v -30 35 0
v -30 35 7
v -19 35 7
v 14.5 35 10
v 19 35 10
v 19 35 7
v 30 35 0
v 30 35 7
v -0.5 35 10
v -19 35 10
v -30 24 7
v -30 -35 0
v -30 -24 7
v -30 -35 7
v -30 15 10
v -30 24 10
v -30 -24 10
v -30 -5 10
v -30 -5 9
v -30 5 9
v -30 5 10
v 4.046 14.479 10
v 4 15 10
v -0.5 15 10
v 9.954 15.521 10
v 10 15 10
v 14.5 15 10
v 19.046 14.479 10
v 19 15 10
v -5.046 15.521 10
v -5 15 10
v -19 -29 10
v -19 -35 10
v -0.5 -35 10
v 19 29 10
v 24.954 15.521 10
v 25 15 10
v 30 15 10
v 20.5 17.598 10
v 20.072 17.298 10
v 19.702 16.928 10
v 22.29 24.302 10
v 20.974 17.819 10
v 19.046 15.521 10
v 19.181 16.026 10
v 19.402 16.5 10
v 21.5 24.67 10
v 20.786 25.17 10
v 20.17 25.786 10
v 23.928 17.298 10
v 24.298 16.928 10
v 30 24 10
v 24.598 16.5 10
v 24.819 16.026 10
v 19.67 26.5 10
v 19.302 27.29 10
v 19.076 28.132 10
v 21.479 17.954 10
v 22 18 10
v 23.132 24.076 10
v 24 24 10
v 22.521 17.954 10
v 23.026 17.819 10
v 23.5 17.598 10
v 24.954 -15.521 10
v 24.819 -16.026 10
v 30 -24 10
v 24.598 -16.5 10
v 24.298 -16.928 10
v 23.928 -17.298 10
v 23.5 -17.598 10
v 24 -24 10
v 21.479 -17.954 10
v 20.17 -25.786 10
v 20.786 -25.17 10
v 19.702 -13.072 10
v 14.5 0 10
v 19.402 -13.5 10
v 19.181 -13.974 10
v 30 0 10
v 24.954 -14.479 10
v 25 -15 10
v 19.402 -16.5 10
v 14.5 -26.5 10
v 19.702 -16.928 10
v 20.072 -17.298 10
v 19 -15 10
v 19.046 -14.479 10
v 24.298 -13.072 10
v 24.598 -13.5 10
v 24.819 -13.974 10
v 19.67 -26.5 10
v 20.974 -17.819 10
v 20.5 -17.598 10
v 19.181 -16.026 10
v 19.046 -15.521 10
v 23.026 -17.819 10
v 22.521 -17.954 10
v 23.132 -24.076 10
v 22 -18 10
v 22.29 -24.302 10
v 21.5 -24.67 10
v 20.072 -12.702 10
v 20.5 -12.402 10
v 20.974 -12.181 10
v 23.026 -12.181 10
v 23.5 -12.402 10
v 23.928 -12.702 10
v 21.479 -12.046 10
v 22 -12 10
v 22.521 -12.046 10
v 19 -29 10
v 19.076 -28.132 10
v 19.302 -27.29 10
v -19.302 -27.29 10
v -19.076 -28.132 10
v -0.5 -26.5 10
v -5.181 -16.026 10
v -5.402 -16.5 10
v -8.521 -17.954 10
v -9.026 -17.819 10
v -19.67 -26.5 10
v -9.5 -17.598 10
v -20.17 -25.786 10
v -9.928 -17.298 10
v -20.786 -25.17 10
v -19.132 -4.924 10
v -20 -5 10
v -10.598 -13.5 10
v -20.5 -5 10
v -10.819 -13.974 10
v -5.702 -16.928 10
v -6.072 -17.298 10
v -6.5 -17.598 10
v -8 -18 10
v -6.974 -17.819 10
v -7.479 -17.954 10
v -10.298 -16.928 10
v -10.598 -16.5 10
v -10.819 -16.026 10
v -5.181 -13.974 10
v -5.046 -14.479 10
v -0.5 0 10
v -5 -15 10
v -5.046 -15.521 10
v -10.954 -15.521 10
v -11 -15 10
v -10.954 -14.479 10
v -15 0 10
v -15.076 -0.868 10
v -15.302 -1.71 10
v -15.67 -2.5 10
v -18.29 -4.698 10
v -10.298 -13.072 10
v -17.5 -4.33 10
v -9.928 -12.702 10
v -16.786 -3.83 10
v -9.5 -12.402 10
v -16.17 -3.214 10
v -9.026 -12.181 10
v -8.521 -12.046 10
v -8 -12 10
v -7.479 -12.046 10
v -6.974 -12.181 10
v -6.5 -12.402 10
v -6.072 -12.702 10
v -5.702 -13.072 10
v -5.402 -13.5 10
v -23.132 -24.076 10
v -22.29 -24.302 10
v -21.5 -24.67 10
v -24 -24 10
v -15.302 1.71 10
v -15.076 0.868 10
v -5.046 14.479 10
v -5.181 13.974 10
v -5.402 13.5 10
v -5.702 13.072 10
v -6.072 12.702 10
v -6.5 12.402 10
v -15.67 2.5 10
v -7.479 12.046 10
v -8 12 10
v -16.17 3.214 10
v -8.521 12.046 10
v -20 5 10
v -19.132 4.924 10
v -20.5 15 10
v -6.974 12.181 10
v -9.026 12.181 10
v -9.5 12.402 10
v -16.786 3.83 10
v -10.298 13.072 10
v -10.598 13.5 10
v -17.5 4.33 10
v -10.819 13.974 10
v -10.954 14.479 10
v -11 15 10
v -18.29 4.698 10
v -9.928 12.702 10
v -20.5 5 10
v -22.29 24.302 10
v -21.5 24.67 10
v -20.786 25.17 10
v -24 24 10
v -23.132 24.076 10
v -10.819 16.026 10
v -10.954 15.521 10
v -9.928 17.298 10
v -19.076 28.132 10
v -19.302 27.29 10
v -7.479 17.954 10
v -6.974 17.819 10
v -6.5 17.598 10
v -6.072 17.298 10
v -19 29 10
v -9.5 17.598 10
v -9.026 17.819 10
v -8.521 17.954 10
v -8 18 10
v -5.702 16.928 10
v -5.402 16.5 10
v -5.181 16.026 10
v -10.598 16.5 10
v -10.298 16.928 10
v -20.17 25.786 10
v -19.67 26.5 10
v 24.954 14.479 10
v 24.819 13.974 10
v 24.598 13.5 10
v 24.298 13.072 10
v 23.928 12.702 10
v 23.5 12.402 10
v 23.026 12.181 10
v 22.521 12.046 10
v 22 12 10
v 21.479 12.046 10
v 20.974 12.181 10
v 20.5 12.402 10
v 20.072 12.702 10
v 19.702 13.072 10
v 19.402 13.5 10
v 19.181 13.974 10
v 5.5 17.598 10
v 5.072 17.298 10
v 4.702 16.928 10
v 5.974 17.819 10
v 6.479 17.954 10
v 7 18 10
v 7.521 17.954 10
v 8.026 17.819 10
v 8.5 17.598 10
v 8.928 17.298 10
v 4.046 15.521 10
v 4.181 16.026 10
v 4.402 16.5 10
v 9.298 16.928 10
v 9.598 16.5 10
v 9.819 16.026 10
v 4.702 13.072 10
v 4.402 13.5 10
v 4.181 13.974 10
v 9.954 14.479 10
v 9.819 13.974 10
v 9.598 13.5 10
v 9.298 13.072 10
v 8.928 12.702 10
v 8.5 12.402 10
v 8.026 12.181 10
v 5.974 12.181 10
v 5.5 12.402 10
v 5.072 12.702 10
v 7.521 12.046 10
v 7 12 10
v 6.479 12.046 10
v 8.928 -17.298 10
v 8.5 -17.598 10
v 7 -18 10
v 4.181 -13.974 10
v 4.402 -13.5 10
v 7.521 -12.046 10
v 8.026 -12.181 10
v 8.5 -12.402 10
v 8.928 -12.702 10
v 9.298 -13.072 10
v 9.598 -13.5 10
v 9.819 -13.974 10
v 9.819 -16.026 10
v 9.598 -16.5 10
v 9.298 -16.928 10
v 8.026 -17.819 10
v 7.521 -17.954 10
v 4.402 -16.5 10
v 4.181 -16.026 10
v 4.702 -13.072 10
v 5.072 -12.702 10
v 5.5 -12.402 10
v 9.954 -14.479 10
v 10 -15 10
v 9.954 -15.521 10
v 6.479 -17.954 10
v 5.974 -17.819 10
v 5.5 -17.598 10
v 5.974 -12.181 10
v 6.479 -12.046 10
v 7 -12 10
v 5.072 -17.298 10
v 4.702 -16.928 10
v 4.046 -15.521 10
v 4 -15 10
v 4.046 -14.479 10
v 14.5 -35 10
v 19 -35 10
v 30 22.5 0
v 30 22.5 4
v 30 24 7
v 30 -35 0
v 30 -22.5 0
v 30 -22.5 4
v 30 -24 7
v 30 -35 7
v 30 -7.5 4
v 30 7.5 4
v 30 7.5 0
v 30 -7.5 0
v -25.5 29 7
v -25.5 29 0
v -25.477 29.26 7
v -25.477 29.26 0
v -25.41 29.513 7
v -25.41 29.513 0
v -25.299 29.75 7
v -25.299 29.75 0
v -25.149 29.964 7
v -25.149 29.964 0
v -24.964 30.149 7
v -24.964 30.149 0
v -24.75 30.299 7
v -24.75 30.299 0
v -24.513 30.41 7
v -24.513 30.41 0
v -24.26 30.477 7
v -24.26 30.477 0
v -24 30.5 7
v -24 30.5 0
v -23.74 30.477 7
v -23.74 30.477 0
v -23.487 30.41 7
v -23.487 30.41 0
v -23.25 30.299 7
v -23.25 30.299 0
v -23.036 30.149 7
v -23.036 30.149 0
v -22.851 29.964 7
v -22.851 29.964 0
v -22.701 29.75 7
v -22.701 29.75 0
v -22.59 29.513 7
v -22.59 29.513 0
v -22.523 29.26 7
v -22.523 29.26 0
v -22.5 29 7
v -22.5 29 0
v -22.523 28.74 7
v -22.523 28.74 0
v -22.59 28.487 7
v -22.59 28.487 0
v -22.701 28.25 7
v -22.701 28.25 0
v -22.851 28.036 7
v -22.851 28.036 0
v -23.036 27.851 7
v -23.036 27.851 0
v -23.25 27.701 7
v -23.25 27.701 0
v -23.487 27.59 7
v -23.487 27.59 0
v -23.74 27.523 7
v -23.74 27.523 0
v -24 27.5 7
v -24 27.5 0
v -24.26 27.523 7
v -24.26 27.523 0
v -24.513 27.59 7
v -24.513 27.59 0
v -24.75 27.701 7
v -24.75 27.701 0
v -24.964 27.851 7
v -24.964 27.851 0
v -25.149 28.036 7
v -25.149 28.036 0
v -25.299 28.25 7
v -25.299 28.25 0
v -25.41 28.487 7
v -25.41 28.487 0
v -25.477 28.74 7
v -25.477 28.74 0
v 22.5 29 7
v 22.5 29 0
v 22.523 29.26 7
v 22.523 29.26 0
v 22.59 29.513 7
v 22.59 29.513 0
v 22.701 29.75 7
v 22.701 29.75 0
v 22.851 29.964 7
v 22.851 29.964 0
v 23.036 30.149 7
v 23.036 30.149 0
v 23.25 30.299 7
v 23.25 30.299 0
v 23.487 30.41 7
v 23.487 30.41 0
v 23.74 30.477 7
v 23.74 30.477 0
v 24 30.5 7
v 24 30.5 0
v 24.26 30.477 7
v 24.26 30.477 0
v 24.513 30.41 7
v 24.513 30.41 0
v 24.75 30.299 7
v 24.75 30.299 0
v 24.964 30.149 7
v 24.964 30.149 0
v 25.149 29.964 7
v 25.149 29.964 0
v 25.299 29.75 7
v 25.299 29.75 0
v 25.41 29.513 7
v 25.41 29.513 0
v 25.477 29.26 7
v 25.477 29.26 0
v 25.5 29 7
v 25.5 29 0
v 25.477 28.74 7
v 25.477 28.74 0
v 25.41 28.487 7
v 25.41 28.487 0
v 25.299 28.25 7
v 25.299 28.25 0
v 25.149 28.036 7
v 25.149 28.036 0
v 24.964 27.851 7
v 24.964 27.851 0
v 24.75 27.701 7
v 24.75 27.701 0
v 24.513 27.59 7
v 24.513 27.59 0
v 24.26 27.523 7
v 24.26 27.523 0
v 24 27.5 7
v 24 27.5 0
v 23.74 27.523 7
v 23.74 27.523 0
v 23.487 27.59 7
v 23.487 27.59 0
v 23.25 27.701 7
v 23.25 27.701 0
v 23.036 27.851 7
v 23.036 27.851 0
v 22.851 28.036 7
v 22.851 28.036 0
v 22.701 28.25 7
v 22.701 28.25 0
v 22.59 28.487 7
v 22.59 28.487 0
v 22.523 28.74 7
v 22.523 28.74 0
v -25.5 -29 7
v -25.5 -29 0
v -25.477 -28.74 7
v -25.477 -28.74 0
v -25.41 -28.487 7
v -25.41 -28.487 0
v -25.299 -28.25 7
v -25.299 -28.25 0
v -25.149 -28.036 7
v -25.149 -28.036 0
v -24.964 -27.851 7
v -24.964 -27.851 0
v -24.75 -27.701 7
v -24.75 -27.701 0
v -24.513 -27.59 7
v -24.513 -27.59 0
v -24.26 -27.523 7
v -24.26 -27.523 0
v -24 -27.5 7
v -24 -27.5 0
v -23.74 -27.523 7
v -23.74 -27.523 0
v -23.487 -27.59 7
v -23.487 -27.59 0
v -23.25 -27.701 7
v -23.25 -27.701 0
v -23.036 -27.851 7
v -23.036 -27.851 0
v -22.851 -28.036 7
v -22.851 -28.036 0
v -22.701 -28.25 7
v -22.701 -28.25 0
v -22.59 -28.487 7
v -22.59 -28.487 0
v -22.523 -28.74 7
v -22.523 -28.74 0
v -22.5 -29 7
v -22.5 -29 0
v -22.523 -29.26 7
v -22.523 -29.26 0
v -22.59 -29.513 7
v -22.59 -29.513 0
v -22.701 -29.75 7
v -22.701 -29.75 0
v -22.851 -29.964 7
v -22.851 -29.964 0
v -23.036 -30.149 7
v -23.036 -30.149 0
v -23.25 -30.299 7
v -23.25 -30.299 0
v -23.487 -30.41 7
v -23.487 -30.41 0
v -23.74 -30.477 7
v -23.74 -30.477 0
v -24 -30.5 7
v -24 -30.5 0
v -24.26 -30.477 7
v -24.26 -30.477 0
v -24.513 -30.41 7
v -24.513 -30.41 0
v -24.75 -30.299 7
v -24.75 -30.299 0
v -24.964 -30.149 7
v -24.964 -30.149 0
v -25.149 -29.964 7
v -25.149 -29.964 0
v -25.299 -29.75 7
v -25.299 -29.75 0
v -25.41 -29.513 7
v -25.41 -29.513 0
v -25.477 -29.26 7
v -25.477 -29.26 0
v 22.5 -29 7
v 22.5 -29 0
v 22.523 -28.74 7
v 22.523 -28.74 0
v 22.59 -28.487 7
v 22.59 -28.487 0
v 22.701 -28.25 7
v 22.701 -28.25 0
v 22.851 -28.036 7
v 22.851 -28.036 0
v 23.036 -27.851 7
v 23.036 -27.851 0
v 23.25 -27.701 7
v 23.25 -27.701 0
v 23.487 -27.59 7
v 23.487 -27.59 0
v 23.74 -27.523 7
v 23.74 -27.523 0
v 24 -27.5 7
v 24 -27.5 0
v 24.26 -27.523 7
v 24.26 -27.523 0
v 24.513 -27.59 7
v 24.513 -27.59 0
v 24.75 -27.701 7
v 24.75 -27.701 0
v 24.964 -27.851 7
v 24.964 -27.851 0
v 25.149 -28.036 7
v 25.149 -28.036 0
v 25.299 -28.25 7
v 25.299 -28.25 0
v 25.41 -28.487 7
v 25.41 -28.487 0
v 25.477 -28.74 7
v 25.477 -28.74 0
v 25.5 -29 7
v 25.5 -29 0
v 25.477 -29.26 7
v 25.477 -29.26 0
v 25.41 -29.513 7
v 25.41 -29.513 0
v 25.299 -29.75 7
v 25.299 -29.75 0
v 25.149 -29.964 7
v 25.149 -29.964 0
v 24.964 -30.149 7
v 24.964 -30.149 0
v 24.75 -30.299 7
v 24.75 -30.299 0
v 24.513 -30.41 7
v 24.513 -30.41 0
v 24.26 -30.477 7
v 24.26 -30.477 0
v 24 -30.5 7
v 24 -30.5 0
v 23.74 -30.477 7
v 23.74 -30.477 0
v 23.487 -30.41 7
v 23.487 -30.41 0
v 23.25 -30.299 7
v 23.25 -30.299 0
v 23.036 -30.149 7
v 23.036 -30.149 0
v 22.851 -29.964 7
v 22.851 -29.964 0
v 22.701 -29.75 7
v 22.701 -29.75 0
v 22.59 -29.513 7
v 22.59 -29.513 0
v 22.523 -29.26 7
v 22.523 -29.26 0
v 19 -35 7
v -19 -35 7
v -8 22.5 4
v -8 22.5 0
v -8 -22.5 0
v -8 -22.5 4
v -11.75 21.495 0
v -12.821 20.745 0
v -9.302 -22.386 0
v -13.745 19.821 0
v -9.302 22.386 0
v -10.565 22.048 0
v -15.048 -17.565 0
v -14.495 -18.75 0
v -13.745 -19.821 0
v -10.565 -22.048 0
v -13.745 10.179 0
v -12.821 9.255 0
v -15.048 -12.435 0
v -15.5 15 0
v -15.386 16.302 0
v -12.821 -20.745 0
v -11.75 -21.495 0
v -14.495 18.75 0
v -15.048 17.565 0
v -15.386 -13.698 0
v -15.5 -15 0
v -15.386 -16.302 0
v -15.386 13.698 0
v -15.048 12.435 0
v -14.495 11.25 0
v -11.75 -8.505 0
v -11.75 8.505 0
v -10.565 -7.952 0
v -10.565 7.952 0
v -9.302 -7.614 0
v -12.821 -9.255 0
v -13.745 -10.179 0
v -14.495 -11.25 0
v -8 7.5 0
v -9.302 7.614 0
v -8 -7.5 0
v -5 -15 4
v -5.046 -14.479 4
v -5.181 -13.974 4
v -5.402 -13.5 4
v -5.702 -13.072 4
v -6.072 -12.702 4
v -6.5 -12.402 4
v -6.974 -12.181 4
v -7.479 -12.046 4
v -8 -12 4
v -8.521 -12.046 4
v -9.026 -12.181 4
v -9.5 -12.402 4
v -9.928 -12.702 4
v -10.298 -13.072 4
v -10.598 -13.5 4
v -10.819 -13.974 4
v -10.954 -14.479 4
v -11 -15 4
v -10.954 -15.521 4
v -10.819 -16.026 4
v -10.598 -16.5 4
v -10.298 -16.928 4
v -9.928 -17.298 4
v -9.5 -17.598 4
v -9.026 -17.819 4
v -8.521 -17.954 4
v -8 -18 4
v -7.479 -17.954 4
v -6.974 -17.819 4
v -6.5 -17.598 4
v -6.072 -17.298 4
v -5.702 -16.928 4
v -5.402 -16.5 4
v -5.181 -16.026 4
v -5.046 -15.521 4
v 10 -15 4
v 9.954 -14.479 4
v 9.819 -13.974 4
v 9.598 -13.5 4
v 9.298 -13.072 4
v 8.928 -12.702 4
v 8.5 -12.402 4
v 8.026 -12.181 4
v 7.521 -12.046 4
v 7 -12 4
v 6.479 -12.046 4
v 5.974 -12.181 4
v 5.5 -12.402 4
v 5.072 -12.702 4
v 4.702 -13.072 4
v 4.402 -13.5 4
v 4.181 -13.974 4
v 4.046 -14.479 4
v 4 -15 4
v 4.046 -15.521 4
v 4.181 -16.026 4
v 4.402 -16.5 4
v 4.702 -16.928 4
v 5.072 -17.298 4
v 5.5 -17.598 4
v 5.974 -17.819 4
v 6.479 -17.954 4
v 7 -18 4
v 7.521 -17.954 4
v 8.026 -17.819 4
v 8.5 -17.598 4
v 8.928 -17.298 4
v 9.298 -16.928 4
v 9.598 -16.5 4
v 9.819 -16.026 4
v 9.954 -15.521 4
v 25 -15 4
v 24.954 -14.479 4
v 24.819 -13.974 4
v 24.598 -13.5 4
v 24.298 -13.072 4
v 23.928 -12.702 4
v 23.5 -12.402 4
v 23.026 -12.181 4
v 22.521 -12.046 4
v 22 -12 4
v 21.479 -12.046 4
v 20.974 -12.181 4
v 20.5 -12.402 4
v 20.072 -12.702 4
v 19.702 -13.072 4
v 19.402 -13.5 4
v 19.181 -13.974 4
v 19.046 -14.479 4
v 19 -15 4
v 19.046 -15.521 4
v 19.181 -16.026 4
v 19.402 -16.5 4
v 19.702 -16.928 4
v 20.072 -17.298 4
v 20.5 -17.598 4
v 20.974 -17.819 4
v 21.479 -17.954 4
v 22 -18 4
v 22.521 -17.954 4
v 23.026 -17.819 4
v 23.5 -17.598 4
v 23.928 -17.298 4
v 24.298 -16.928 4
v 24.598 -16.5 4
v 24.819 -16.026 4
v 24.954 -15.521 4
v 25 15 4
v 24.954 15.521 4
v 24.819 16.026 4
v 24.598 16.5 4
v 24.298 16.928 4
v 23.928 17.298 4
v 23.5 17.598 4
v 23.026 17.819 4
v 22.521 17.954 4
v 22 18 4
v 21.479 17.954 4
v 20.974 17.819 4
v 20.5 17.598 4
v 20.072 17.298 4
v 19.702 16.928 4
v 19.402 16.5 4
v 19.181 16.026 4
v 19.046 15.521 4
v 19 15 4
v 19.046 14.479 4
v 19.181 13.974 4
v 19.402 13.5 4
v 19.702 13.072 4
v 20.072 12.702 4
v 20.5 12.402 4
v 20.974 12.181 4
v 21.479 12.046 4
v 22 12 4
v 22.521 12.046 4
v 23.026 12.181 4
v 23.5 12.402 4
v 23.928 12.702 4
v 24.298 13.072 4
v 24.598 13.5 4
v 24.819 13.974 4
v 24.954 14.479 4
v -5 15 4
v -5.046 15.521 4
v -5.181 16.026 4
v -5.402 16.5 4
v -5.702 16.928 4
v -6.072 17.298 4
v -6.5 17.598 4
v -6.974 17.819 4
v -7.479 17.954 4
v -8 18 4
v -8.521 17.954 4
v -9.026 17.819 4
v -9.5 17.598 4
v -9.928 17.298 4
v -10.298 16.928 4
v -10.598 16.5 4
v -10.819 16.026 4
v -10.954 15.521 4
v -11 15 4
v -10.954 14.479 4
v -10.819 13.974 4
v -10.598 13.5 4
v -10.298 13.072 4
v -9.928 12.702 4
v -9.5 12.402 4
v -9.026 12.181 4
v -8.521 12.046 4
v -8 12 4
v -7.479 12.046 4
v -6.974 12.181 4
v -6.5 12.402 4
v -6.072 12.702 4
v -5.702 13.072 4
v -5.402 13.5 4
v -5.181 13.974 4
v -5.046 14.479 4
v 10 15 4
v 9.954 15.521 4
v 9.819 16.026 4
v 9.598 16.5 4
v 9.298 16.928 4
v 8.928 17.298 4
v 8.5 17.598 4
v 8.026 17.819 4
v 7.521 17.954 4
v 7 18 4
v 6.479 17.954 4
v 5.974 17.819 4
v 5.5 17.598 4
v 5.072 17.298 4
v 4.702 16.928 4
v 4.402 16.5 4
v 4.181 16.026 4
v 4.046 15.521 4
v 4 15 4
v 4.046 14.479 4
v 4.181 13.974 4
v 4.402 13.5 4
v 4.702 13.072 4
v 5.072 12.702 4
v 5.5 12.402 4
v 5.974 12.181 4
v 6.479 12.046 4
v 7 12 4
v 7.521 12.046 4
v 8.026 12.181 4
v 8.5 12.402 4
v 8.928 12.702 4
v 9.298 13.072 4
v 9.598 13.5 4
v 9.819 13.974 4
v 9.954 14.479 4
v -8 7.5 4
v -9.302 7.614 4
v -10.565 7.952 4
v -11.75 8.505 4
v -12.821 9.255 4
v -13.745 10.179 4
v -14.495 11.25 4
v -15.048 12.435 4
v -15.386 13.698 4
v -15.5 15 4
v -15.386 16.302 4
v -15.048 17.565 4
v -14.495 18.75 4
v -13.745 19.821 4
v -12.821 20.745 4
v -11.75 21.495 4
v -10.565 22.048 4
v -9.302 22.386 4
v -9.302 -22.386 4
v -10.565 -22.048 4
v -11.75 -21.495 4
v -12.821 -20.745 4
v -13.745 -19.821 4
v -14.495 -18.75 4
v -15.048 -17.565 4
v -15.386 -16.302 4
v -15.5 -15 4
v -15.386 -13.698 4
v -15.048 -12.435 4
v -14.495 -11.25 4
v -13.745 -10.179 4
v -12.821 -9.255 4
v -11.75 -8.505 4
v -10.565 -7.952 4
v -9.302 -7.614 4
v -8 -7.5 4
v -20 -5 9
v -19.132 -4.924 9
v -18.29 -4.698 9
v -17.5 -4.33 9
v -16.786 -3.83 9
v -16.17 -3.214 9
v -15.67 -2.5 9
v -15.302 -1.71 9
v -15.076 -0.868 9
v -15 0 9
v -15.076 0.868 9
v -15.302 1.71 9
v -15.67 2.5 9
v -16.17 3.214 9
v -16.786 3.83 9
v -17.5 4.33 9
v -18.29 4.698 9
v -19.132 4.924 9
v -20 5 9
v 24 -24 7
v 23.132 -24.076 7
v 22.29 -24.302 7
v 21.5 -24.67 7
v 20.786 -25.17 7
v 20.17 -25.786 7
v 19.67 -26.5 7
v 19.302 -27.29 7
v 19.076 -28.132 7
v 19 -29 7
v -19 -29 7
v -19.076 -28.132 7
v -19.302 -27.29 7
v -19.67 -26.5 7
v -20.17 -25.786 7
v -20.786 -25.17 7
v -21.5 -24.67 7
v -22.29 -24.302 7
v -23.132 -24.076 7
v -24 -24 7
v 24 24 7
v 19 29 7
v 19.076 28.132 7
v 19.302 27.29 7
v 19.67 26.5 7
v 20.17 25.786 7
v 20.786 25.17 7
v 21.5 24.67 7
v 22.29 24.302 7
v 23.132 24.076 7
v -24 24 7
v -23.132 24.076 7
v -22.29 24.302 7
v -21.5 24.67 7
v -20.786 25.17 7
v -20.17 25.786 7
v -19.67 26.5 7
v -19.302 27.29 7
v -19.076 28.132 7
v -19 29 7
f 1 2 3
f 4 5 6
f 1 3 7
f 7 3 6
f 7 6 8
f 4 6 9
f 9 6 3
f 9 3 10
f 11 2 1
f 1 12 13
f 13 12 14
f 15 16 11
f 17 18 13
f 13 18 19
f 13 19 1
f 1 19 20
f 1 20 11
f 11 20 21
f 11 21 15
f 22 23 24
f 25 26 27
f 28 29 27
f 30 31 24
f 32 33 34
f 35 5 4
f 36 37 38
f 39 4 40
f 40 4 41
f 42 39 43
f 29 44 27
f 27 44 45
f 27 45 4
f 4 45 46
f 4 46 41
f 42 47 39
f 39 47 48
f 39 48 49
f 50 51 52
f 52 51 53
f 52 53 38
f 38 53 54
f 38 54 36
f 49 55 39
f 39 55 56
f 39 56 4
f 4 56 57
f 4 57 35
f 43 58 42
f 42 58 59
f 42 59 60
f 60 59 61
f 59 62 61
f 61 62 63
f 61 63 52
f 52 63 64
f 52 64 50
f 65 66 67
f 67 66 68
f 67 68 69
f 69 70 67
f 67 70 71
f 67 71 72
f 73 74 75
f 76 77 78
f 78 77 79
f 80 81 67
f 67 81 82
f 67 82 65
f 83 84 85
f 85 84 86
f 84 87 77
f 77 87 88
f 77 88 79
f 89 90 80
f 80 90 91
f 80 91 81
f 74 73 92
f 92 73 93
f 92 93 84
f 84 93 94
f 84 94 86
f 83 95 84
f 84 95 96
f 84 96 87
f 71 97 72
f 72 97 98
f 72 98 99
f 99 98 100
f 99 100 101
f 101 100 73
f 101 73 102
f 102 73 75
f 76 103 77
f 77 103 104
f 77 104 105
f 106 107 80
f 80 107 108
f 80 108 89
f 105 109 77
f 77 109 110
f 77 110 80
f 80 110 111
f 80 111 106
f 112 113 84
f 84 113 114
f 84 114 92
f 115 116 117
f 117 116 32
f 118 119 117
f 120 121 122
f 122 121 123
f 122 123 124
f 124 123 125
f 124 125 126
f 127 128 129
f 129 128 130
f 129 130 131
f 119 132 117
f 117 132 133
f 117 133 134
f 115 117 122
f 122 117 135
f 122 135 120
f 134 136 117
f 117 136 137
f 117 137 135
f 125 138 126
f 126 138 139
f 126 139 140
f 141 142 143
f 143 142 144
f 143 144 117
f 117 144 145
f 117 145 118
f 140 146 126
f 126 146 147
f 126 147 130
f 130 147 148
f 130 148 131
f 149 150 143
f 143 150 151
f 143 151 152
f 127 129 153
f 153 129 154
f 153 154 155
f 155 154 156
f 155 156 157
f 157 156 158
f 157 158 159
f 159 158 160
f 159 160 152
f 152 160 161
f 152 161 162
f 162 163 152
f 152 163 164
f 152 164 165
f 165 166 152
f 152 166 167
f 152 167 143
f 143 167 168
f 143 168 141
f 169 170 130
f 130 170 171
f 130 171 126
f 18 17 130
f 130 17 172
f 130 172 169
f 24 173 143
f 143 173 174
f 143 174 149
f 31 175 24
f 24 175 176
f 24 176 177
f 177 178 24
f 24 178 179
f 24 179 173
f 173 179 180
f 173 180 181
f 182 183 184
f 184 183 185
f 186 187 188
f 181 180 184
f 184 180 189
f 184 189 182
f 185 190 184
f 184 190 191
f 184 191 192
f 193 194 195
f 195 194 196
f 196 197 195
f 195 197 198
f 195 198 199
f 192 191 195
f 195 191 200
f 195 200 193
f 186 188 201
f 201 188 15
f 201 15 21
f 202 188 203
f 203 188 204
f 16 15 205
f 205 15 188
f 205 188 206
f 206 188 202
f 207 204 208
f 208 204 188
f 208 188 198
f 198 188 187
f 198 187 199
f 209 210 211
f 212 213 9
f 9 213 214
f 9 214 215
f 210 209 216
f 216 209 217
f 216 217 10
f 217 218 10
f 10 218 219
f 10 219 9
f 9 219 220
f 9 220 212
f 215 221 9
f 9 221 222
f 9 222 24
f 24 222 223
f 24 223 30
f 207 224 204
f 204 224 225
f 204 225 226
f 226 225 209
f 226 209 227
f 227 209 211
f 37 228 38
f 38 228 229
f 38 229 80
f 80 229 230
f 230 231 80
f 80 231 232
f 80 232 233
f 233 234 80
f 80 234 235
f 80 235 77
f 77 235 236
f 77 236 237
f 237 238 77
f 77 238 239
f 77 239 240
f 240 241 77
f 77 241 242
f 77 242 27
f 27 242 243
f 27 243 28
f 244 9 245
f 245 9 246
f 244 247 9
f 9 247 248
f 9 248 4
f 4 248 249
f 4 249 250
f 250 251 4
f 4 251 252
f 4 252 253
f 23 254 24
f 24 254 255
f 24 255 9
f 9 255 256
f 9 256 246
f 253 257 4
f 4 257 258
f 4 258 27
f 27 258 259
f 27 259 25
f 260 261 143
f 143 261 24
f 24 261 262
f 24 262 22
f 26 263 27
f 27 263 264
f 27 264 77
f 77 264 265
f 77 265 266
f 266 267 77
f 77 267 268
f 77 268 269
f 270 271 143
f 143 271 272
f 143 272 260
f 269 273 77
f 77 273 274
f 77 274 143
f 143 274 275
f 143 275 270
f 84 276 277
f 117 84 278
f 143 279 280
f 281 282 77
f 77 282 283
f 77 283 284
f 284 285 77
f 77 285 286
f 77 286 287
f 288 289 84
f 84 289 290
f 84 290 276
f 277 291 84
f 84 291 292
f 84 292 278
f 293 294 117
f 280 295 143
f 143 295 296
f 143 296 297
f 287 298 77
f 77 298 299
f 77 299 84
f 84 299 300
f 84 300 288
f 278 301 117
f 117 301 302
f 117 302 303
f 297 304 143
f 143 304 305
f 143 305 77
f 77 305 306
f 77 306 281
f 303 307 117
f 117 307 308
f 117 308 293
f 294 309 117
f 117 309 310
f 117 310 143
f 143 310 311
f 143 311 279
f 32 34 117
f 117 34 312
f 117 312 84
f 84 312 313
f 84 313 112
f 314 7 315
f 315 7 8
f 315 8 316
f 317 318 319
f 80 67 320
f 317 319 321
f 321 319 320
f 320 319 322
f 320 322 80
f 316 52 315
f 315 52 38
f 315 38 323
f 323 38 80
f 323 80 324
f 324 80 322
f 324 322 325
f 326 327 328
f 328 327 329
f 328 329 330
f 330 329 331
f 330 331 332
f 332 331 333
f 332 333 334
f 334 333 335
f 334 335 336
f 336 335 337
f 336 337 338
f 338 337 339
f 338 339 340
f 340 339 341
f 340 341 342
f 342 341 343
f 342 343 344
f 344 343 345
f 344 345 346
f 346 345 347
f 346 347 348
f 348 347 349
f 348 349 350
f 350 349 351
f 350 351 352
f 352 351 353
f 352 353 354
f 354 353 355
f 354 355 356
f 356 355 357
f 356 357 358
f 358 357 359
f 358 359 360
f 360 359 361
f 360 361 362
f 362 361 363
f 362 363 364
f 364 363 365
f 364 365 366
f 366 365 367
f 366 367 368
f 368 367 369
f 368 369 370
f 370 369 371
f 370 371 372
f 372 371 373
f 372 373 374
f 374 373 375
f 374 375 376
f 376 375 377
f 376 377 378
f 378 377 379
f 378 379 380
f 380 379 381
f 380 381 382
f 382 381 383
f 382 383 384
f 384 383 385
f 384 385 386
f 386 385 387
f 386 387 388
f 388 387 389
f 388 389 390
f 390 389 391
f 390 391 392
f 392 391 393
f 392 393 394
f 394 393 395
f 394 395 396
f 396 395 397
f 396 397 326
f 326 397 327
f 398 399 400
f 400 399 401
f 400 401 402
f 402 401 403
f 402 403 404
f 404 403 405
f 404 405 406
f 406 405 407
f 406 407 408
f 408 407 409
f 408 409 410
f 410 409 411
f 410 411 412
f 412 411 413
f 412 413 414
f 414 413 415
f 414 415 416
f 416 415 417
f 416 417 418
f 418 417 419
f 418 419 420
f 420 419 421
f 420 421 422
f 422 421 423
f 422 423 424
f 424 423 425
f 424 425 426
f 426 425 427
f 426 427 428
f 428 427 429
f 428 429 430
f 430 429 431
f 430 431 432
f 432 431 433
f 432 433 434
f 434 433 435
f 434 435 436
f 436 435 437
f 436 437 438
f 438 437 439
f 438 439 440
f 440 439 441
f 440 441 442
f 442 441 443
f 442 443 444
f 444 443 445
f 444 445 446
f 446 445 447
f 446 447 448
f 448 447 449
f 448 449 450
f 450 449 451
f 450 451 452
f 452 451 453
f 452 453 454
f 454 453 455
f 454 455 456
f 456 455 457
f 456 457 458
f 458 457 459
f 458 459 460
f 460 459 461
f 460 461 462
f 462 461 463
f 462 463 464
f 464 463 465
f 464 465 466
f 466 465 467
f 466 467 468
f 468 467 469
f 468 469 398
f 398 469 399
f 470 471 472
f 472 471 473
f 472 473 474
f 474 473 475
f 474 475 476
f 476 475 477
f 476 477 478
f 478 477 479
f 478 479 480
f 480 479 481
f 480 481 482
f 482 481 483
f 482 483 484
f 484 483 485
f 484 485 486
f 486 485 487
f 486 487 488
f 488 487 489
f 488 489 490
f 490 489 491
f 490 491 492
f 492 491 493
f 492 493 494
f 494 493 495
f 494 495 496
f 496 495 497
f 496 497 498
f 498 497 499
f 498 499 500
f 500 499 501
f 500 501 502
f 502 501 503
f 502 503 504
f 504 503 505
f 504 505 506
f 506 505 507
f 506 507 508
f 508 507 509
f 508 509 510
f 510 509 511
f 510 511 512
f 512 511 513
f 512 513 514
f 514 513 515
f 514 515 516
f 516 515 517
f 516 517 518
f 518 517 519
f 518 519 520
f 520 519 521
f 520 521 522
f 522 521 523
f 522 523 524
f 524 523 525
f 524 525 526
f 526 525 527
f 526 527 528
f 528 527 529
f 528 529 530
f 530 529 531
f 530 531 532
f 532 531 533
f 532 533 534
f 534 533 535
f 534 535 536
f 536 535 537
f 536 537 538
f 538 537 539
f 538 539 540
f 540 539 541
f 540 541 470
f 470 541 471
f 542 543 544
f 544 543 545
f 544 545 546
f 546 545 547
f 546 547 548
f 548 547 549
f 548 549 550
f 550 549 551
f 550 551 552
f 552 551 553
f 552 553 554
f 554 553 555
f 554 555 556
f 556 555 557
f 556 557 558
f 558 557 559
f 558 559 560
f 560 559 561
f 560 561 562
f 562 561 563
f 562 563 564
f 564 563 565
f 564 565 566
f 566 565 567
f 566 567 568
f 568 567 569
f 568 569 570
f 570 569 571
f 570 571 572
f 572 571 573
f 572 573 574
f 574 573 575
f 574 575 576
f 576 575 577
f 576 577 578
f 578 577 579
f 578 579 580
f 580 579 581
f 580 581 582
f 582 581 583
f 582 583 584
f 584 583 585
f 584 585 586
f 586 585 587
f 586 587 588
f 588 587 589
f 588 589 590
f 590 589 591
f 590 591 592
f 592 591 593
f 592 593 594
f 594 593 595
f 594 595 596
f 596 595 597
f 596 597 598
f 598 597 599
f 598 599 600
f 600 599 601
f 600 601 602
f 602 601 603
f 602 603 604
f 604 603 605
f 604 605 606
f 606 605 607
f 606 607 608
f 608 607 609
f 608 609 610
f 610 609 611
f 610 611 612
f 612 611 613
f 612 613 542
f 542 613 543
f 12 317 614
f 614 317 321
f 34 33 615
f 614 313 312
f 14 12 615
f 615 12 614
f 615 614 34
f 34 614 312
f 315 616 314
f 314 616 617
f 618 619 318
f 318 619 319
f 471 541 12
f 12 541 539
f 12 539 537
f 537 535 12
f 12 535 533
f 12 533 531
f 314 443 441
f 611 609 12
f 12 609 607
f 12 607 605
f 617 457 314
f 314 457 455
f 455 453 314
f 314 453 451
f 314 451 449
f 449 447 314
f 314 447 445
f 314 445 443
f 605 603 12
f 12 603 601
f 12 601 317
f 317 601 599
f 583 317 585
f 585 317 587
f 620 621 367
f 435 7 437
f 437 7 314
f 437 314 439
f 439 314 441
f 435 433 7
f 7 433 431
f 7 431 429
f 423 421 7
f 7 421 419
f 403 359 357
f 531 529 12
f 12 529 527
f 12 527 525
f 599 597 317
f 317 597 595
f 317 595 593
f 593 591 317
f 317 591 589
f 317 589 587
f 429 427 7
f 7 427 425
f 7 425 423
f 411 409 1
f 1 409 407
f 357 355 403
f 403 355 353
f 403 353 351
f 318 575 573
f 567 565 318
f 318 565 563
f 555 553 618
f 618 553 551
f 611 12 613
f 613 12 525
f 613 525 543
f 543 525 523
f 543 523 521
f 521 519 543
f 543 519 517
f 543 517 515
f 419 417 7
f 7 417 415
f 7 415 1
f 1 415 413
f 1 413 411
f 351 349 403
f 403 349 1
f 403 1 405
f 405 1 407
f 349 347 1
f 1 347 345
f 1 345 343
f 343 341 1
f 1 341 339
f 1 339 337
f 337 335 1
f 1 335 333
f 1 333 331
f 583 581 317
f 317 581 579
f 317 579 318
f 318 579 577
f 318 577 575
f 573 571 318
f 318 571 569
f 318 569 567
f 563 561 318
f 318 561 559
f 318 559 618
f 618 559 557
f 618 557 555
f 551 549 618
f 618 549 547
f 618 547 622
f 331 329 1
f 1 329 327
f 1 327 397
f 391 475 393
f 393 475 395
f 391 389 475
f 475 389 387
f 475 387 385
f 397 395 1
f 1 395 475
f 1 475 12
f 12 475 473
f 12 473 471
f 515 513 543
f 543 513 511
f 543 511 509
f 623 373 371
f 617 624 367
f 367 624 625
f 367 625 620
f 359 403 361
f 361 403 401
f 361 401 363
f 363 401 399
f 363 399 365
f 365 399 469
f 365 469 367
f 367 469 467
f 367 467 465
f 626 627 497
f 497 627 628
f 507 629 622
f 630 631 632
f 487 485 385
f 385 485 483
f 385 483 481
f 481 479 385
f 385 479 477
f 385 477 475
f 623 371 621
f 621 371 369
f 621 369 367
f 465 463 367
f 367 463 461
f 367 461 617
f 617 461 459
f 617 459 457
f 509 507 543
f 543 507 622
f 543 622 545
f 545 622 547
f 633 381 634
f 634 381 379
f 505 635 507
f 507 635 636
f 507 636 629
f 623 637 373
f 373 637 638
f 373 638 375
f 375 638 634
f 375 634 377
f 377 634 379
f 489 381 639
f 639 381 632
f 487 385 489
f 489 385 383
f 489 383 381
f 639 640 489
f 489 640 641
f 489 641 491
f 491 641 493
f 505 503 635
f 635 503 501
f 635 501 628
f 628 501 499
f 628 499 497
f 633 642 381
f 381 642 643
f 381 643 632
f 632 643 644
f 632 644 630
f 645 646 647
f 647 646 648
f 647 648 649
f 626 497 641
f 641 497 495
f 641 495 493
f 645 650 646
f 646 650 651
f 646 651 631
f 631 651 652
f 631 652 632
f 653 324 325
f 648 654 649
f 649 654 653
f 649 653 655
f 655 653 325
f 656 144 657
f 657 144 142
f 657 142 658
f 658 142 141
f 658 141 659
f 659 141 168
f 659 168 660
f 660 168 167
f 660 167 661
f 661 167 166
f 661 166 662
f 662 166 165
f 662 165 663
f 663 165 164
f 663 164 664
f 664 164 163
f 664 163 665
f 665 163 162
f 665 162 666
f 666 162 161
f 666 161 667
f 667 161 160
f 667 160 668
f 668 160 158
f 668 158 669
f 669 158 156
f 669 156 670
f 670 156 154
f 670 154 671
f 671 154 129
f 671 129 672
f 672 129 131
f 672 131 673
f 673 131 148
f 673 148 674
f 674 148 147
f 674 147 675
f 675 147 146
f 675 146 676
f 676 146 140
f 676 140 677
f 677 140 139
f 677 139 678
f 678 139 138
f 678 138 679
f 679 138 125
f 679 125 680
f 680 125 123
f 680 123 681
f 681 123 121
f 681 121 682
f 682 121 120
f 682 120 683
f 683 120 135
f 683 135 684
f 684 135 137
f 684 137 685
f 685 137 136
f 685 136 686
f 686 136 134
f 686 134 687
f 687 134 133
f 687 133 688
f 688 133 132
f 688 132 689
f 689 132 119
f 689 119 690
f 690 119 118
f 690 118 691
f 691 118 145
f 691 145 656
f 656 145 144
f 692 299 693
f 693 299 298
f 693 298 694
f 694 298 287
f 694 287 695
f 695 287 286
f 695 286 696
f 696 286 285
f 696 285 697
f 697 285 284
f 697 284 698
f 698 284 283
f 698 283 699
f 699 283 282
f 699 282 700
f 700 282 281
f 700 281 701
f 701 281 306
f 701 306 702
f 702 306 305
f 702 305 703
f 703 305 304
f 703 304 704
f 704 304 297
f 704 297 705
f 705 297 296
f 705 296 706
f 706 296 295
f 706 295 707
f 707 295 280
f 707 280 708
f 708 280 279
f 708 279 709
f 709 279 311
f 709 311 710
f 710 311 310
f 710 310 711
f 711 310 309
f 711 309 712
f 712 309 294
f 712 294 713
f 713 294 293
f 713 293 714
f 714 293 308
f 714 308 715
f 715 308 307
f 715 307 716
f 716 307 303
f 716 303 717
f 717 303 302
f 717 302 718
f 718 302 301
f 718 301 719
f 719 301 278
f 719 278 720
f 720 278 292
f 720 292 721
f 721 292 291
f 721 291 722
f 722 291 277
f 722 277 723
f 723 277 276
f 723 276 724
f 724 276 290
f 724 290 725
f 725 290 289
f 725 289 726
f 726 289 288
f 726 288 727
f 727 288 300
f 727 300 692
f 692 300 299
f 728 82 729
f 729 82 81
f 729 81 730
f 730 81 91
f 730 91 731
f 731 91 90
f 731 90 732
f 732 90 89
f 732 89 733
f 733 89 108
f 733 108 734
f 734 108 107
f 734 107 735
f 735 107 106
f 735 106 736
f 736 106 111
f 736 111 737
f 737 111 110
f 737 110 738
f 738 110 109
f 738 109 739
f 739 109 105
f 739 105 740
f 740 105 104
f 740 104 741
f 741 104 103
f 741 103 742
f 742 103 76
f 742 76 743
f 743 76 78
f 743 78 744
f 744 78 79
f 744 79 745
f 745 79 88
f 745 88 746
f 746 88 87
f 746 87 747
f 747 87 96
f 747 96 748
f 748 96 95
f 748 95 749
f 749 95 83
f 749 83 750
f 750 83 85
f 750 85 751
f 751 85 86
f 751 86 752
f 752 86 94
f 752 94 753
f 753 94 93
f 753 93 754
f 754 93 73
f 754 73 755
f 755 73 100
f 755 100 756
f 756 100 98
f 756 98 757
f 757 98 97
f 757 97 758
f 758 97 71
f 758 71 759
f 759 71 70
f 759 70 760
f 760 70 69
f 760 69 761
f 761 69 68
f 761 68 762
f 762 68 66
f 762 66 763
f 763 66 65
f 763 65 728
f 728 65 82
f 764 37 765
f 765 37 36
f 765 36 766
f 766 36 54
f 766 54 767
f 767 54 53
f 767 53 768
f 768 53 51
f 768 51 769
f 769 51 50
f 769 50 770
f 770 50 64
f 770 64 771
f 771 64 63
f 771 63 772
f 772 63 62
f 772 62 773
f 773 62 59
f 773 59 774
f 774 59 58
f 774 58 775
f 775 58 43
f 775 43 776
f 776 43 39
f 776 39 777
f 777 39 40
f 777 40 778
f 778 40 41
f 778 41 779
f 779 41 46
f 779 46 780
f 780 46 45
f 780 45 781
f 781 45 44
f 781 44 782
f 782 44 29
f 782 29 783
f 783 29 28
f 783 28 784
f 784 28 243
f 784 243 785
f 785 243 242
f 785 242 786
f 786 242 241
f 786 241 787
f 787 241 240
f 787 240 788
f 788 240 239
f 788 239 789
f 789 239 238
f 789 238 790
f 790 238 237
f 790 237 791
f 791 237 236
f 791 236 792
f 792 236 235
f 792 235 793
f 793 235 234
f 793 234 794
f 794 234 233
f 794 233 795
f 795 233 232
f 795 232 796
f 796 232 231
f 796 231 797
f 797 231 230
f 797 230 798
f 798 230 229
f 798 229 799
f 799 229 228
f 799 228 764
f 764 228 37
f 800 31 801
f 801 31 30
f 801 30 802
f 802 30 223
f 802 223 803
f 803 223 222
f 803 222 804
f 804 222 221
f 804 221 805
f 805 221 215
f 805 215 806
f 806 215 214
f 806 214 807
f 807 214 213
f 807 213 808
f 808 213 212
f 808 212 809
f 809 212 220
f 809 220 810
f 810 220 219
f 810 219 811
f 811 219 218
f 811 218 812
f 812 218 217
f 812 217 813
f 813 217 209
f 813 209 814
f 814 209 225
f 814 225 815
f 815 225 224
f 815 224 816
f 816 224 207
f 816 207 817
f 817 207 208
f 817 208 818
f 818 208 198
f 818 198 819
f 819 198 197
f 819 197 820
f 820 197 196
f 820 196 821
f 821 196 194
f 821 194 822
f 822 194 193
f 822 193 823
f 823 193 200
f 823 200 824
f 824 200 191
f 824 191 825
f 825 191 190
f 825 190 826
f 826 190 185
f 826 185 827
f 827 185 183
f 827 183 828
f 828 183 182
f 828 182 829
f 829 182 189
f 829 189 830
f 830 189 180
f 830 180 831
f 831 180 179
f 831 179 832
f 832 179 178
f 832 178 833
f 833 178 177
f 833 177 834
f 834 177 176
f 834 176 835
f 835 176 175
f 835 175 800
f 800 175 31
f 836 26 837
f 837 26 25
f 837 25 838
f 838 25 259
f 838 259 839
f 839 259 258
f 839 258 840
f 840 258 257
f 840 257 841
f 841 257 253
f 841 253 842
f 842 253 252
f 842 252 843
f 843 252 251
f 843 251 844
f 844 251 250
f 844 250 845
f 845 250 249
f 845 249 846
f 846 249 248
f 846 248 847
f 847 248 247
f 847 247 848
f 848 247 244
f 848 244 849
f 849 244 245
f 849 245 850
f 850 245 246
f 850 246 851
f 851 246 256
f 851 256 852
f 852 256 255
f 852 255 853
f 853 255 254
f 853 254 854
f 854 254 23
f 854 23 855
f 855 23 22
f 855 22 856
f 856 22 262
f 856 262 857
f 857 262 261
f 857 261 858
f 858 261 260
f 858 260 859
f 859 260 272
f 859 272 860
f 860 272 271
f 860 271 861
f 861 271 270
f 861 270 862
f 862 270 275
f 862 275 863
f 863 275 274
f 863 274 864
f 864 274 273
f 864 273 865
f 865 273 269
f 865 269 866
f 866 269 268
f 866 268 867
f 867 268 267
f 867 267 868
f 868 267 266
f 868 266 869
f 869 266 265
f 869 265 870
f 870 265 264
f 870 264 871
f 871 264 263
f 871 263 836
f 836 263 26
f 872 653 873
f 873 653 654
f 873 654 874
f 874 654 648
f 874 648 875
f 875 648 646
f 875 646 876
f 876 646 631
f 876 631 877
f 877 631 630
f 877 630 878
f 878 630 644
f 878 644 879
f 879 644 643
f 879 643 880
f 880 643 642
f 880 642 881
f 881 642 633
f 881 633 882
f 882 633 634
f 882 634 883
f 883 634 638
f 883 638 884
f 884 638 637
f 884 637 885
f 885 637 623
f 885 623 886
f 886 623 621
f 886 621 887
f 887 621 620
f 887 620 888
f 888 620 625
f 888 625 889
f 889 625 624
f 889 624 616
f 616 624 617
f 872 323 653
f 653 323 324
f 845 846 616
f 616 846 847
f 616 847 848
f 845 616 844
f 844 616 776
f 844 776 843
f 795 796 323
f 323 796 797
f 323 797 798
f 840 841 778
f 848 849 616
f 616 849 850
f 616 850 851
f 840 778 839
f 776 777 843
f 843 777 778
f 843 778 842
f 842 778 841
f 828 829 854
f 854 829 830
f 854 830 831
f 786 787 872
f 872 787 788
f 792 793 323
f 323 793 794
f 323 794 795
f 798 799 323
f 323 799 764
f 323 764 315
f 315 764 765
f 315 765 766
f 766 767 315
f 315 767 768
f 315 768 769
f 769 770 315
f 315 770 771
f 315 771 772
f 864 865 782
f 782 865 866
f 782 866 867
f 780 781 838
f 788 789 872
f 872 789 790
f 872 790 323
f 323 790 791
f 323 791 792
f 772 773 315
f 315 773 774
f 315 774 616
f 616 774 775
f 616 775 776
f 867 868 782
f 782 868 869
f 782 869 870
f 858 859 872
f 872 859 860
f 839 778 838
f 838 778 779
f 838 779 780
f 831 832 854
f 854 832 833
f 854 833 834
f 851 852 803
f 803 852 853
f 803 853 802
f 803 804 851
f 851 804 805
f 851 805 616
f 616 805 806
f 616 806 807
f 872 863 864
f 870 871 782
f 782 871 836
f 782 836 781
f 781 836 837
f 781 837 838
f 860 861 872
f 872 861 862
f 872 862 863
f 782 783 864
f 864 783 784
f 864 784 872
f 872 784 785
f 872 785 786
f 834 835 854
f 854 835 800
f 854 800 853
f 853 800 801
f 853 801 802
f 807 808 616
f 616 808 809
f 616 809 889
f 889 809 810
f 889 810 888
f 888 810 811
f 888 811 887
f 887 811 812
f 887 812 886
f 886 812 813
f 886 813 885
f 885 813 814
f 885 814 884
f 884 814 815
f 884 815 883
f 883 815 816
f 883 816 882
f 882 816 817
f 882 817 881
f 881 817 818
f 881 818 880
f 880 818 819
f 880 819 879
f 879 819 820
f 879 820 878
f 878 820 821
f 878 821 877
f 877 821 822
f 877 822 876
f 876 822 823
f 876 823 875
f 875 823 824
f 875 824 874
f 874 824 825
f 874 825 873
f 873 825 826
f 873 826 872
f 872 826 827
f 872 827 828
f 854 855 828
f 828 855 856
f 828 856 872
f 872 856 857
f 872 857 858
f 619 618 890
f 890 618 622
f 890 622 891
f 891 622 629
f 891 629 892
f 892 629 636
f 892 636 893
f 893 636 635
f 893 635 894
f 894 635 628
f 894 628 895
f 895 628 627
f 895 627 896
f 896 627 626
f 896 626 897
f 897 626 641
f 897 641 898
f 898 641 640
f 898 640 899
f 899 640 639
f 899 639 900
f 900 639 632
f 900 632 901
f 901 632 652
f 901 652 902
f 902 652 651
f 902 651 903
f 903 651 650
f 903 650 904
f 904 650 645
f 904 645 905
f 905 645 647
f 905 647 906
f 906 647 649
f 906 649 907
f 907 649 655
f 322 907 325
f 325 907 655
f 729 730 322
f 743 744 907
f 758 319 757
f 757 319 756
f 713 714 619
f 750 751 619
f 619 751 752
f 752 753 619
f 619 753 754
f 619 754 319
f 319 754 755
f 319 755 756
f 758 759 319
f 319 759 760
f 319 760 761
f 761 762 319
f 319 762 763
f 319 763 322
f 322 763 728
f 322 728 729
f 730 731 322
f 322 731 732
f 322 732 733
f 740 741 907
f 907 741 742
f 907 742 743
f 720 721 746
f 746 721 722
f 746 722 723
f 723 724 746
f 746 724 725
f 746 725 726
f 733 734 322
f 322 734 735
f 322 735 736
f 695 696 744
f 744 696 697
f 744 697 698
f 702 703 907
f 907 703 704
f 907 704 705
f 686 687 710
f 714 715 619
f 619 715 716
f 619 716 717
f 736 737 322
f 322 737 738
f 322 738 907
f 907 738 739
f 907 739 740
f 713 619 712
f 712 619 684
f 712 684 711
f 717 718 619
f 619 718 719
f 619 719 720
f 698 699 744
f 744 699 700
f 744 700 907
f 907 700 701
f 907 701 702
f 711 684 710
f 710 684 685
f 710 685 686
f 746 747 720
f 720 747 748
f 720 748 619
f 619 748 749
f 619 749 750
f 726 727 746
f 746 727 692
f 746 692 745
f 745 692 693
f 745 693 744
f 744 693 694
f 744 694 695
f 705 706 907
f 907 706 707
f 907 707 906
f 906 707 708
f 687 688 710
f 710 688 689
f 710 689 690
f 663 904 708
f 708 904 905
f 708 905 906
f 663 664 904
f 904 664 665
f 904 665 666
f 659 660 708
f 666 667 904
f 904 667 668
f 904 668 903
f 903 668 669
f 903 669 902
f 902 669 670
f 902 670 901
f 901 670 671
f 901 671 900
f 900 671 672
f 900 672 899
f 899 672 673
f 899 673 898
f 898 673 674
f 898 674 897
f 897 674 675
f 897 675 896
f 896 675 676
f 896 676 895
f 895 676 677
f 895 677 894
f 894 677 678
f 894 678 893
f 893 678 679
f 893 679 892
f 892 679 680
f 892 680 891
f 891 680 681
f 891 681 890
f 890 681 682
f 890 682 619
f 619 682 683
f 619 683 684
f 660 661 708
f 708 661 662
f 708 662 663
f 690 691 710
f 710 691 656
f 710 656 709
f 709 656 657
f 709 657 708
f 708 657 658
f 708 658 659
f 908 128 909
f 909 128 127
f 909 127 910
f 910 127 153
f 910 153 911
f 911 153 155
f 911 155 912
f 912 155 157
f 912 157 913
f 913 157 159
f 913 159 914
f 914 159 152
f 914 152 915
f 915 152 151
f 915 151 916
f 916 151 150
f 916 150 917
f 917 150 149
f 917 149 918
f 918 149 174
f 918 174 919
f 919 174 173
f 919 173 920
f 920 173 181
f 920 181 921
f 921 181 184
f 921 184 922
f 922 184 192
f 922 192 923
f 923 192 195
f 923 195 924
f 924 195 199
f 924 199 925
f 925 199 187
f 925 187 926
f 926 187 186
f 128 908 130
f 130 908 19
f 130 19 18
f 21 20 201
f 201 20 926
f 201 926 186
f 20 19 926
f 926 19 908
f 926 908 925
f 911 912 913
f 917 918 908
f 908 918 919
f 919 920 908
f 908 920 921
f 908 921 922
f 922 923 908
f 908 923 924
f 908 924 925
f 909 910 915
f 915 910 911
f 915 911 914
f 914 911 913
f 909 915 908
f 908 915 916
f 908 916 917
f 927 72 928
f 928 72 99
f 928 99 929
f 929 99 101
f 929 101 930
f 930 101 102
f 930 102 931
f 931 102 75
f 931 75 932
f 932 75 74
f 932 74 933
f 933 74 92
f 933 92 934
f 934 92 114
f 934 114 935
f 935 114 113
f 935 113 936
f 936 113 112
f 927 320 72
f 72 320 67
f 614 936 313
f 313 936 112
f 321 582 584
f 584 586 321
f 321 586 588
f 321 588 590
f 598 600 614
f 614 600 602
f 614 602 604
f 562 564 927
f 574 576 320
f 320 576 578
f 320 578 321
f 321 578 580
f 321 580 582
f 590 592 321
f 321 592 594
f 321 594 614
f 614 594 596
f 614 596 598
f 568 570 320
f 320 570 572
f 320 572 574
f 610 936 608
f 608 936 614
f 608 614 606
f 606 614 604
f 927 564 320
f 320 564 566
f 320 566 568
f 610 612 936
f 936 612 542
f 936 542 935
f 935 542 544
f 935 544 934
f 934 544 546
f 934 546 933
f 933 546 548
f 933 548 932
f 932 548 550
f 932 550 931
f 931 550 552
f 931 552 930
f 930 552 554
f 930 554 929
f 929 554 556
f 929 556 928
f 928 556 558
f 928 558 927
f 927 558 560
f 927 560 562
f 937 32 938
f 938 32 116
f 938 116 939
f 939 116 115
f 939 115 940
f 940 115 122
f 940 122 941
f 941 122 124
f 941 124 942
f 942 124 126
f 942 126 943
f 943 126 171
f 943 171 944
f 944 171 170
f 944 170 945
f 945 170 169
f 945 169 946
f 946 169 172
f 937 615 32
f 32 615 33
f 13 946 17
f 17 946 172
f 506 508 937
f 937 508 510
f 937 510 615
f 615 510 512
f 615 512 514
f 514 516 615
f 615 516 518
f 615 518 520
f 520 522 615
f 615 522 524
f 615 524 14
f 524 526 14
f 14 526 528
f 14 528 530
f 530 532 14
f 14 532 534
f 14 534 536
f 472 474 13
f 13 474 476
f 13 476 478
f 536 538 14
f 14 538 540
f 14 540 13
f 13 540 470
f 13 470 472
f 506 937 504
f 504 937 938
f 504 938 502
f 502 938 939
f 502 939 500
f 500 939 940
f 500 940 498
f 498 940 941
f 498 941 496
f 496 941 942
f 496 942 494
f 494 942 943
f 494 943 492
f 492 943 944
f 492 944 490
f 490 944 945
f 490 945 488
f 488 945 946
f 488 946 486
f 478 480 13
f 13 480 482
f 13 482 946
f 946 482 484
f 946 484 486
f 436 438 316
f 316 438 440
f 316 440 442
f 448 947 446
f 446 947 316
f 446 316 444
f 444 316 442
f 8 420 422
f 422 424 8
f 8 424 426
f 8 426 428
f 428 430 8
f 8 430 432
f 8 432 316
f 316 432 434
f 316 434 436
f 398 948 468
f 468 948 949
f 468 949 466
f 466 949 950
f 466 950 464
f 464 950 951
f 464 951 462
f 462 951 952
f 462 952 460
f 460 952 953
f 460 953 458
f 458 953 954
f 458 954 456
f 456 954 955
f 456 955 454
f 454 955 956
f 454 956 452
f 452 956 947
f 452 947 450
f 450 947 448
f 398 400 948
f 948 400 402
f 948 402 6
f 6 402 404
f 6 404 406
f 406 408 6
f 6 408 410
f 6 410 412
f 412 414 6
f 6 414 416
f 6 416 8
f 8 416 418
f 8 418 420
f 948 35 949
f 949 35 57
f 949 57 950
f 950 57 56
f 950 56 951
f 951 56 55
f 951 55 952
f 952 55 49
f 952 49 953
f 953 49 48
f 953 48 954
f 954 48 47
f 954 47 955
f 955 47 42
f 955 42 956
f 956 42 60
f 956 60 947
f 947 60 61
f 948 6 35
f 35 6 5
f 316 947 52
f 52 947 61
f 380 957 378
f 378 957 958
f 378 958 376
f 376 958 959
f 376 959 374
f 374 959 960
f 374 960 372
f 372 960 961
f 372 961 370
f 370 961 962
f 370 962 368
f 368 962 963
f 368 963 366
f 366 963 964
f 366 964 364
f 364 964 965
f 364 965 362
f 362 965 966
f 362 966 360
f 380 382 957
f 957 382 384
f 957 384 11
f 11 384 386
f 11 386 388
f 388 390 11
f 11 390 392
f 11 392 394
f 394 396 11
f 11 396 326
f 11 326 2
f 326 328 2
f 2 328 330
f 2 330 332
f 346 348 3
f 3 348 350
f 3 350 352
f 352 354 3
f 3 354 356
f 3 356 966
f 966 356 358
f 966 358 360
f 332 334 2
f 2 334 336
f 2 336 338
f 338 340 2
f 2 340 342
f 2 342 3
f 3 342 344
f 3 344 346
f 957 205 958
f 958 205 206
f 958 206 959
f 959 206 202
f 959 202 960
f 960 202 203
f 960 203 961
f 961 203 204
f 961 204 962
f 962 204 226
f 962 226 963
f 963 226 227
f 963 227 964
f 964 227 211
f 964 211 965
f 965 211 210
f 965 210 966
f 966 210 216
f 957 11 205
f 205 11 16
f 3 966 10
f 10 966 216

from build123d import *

# Parameters (mm, degrees)
SKETCH_1_W          = 60
SKETCH_1_H          = 70
EXTRUDE_1_DEPTH     = 10
SKETCH_2_R          = 3
CUT_EXTRUDE_1_DEPTH = 48.16990566
CUT_EXTRUDE_START   = -4
SKETCH_3_R          = 7.5
SKETCH_3_R_2        = 3
CUT_EXTRUDE_2_DEPTH = 4
SKETCH_4_R          = 5
CUT_EXTRUDE_3_DEPTH = 1
EXTRUDE_2_DEPTH     = 12.5
SKETCH_7_R          = 9.5
CUT_EXTRUDE_4_DEPTH = 12.5
CUT_EXTRUDE_5_DEPTH = 56
SKETCH_9_R          = 1.5
CUT_EXTRUDE_6_DEPTH = 48.16990566
CUT_EXTRUDE_START_2 = -3
SKETCH_10_R         = 1.5
CUT_EXTRUDE_7_DEPTH = 3


with BuildPart() as part:
    # 草图1 → 凸台-拉伸1 (new body)
    with BuildSketch(Plane.XY):
        Rectangle(SKETCH_1_W, SKETCH_1_H)
    extrude(amount=EXTRUDE_1_DEPTH)

    # 草图2 → 切除-拉伸1 (cut, through all)
    with BuildSketch(Plane.XY.offset(10)):
        with Locations((-8, 15)):
            Circle(SKETCH_2_R)
        with Locations((7, 15)):
            Circle(SKETCH_2_R)
        with Locations((-8, -15)):
            Circle(SKETCH_2_R)
        with Locations((7, -15)):
            Circle(SKETCH_2_R)
        with Locations((22, 15)):
            Circle(SKETCH_2_R)
        with Locations((22, -15)):
            Circle(SKETCH_2_R)
    extrude(amount=-CUT_EXTRUDE_1_DEPTH, mode=Mode.SUBTRACT)

    # 草图3 → 切除-拉伸2 (cut)
    # profile 1 of 2: a face of its own
    with BuildSketch(Plane(origin=(0, 0, 0), x_dir=(-1, 0, 0), z_dir=(0, 0, -1)).offset(CUT_EXTRUDE_START)):
        with Locations((8, 15)):
            Circle(SKETCH_3_R)
        with Locations(Location((8, 15, 0), (0, 0, 180))):
            Circle(SKETCH_3_R_2, mode=Mode.SUBTRACT)
    # profile 2 of 2: a face of its own
    with BuildSketch(Plane(origin=(0, 0, 0), x_dir=(-1, 0, 0), z_dir=(0, 0, -1)).offset(CUT_EXTRUDE_START)):
        with BuildLine():
            ThreePointArc((8, 7.5), (0.5, 15), (8, 22.5))
            Line((8, 22.5), (-30, 22.5))
            Line((-30, 22.5), (-30, 7.5))
            Line((-30, 7.5), (8, 7.5))
        make_face()
        with Locations(Location((-7, 15, 0), (0, 0, 180))):
            Circle(SKETCH_3_R_2, mode=Mode.SUBTRACT)
    cut_extrude_2 = extrude(amount=CUT_EXTRUDE_2_DEPTH, mode=Mode.SUBTRACT)

    # 镜向1: 切除-拉伸2 across plane
    add(cut_extrude_2.mirror(Plane.ZX), mode=Mode.SUBTRACT)

    # 草图4 → 切除-拉伸3 (cut)
    with BuildSketch(Plane.XY.offset(10)):
        with Locations((-20, 0)):
            Circle(SKETCH_4_R)
        with BuildLine():
            ThreePointArc((-20, -5), (-25, 0), (-20, 5))
            Line((-20, 5), (-30, 5))
            Line((-30, 5), (-30, -5))
            Line((-30, -5), (-20, -5))
        make_face()
    extrude(amount=-CUT_EXTRUDE_3_DEPTH, mode=Mode.SUBTRACT)

    # 草图6 → 凸台-拉伸2 (add)
    with BuildSketch(Plane(origin=(0, 35, 0), x_dir=(1, 0, 0), z_dir=(0, 1, 0))):
        with BuildLine():
            ThreePointArc((30, 0), (20.807611845, 3.807611845), (17, 13))
            ThreePointArc((17, 13), (0, 30), (-17, 13))
            ThreePointArc((-17, 13), (-20.807611845, 3.807611845), (-30, 0))
            Line((-30, 0), (30, 0))
        make_face()
    extrude_2 = extrude(amount=-EXTRUDE_2_DEPTH)

    # 草图7 → 切除-拉伸4 (cut)
    with BuildSketch(Plane(origin=(0, 35, 0), x_dir=(1, 0, 0), z_dir=(0, 1, 0))):
        with Locations(Location((0, 13, 0), (0, 0, 270))):
            Circle(SKETCH_7_R)
    cut_extrude_4 = extrude(amount=-CUT_EXTRUDE_4_DEPTH, mode=Mode.SUBTRACT)

    # 镜向2: 凸台-拉伸2, 切除-拉伸4 across plane
    add(extrude_2.mirror(Plane.ZX))
    add(cut_extrude_4.mirror(Plane.ZX), mode=Mode.SUBTRACT)

    # 草图8 → 切除-拉伸5 (cut, through all)
    with BuildSketch(Plane(origin=(0, 0, 0), x_dir=(-1, 0, 0), z_dir=(0, 0, -1))):
        with BuildLine():
            Line((30, -5), (20, -5))
            ThreePointArc((20, -5), (15, 0), (20, 5))
            Line((20, 5), (30, 5))
            Line((30, 5), (30, 35))
            Line((30, 35), (-30, 35))
            Line((-30, 35), (-30, -35))
            Line((-30, -35), (30, -35))
            Line((30, -35), (30, -5))
        make_face()
    extrude(amount=CUT_EXTRUDE_5_DEPTH, mode=Mode.SUBTRACT)

    # 草图9 → 切除-拉伸6 (cut, through all)
    with BuildSketch(Plane(origin=(0, 0, 0), x_dir=(-1, 0, 0), z_dir=(0, 0, -1))):
        with Locations((-24, -29)):
            Circle(SKETCH_9_R)
        with Locations((24, -29)):
            Circle(SKETCH_9_R)
    cut_extrude_6 = extrude(amount=-CUT_EXTRUDE_6_DEPTH, mode=Mode.SUBTRACT)

    # 草图10 → 切除-拉伸7 (cut)
    # profile 1 of 2: a face of its own
    with BuildSketch(Plane.XY.offset(10).offset(CUT_EXTRUDE_START_2)):
        with BuildLine():
            Line((-24, -24), (-30, -24))
            Line((-30, -24), (-30, -35))
            Line((-30, -35), (-19, -35))
            Line((-19, -35), (-19, -29))
            ThreePointArc((-19, -29), (-20.464466094, -25.464466094), (-24, -24))
        make_face()
        with Locations(Location((-24, -29, 0), (0, 0, 180))):
            Circle(SKETCH_10_R, mode=Mode.SUBTRACT)
    # profile 2 of 2: a face of its own
    with BuildSketch(Plane.XY.offset(10).offset(CUT_EXTRUDE_START_2)):
        with BuildLine():
            Line((19, -29), (19, -35))
            Line((19, -35), (30, -35))
            Line((30, -35), (30, -24))
            Line((30, -24), (24, -24))
            ThreePointArc((24, -24), (20.464466094, -25.464466094), (19, -29))
        make_face()
        with Locations(Location((24, -29, 0), (0, 0, 180))):
            Circle(SKETCH_10_R, mode=Mode.SUBTRACT)
    cut_extrude_7 = extrude(amount=CUT_EXTRUDE_7_DEPTH, mode=Mode.SUBTRACT)

    # 镜向3: 切除-拉伸6, 切除-拉伸7 across plane
    add(cut_extrude_6.mirror(Plane.ZX), mode=Mode.SUBTRACT)
    add(cut_extrude_7.mirror(Plane.ZX), mode=Mode.SUBTRACT)


solid = part.part
